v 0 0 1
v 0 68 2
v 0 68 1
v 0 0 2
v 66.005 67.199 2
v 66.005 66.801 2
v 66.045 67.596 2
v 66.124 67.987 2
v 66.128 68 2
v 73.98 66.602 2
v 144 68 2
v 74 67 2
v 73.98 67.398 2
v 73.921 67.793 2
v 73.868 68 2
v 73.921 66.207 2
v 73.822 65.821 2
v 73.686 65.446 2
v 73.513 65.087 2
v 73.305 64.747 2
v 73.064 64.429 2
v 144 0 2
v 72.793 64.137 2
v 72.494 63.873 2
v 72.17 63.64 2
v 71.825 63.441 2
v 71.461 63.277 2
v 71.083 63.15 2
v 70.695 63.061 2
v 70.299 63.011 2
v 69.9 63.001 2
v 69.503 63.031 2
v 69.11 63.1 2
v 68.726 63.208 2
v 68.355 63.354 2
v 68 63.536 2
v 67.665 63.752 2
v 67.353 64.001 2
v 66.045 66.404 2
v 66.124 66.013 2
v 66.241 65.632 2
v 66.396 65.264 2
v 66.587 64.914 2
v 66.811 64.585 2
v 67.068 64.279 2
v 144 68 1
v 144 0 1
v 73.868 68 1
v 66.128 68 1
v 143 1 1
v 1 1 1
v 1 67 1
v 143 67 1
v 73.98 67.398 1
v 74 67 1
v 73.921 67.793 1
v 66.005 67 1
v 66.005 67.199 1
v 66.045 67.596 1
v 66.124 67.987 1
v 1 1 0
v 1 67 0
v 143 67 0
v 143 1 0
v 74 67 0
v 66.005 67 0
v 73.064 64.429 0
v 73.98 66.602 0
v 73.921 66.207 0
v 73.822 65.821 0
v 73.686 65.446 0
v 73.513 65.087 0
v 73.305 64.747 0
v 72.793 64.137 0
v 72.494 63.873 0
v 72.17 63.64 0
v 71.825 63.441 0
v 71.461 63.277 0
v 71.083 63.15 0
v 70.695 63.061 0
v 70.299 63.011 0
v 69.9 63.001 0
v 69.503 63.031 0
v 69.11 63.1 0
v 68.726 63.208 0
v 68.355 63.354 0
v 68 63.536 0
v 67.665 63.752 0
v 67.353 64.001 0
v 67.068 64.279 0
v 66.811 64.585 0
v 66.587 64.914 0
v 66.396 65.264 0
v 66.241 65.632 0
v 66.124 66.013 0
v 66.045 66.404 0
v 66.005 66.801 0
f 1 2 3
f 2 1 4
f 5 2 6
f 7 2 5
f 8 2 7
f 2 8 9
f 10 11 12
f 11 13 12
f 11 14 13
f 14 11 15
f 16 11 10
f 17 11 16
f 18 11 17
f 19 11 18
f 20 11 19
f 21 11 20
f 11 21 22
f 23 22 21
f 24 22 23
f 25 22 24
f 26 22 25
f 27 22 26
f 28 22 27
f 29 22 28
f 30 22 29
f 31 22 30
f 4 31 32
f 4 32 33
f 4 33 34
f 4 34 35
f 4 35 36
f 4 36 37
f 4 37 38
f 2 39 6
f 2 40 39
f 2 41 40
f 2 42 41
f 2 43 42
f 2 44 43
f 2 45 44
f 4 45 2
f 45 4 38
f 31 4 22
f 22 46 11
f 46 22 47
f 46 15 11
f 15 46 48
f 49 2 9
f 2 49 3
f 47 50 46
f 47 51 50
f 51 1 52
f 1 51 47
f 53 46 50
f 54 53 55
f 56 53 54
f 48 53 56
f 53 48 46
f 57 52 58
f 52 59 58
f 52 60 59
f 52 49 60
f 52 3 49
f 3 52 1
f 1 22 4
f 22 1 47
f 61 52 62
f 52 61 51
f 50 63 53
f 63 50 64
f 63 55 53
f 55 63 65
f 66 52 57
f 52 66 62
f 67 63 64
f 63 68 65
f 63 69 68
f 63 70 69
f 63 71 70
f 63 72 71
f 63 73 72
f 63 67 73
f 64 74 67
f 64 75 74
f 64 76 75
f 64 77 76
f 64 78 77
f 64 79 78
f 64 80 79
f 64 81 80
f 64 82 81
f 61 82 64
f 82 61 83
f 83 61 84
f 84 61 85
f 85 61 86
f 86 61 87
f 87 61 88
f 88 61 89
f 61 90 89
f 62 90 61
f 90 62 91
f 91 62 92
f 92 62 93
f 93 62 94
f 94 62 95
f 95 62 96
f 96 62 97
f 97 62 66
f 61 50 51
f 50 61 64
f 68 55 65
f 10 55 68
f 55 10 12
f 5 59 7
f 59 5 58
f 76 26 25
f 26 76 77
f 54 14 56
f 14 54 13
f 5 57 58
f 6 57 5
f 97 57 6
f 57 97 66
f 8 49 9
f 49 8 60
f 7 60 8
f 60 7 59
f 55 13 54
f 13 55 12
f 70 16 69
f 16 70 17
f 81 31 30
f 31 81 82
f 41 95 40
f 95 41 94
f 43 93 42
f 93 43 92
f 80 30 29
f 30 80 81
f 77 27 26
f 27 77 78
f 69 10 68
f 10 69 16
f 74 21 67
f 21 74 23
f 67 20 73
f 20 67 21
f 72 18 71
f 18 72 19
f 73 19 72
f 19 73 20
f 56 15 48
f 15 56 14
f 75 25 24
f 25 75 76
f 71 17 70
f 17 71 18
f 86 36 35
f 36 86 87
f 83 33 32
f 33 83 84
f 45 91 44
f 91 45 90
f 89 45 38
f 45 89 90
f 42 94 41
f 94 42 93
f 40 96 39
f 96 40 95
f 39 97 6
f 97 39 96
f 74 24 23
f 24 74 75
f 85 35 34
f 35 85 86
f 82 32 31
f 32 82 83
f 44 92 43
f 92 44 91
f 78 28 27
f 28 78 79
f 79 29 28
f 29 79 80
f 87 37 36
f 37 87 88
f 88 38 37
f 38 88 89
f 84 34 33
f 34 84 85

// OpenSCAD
$fa = 1;
$fs = 0.4;


difference(){
    union(){
        translate([0, 0, 1])
            cube([144, 68, 1]);

        translate([1, 1, 0])
            cube([142, 66, 1]);
    }

    translate([70, 67, -1])
        cylinder(5, 4, 4);
    
}
